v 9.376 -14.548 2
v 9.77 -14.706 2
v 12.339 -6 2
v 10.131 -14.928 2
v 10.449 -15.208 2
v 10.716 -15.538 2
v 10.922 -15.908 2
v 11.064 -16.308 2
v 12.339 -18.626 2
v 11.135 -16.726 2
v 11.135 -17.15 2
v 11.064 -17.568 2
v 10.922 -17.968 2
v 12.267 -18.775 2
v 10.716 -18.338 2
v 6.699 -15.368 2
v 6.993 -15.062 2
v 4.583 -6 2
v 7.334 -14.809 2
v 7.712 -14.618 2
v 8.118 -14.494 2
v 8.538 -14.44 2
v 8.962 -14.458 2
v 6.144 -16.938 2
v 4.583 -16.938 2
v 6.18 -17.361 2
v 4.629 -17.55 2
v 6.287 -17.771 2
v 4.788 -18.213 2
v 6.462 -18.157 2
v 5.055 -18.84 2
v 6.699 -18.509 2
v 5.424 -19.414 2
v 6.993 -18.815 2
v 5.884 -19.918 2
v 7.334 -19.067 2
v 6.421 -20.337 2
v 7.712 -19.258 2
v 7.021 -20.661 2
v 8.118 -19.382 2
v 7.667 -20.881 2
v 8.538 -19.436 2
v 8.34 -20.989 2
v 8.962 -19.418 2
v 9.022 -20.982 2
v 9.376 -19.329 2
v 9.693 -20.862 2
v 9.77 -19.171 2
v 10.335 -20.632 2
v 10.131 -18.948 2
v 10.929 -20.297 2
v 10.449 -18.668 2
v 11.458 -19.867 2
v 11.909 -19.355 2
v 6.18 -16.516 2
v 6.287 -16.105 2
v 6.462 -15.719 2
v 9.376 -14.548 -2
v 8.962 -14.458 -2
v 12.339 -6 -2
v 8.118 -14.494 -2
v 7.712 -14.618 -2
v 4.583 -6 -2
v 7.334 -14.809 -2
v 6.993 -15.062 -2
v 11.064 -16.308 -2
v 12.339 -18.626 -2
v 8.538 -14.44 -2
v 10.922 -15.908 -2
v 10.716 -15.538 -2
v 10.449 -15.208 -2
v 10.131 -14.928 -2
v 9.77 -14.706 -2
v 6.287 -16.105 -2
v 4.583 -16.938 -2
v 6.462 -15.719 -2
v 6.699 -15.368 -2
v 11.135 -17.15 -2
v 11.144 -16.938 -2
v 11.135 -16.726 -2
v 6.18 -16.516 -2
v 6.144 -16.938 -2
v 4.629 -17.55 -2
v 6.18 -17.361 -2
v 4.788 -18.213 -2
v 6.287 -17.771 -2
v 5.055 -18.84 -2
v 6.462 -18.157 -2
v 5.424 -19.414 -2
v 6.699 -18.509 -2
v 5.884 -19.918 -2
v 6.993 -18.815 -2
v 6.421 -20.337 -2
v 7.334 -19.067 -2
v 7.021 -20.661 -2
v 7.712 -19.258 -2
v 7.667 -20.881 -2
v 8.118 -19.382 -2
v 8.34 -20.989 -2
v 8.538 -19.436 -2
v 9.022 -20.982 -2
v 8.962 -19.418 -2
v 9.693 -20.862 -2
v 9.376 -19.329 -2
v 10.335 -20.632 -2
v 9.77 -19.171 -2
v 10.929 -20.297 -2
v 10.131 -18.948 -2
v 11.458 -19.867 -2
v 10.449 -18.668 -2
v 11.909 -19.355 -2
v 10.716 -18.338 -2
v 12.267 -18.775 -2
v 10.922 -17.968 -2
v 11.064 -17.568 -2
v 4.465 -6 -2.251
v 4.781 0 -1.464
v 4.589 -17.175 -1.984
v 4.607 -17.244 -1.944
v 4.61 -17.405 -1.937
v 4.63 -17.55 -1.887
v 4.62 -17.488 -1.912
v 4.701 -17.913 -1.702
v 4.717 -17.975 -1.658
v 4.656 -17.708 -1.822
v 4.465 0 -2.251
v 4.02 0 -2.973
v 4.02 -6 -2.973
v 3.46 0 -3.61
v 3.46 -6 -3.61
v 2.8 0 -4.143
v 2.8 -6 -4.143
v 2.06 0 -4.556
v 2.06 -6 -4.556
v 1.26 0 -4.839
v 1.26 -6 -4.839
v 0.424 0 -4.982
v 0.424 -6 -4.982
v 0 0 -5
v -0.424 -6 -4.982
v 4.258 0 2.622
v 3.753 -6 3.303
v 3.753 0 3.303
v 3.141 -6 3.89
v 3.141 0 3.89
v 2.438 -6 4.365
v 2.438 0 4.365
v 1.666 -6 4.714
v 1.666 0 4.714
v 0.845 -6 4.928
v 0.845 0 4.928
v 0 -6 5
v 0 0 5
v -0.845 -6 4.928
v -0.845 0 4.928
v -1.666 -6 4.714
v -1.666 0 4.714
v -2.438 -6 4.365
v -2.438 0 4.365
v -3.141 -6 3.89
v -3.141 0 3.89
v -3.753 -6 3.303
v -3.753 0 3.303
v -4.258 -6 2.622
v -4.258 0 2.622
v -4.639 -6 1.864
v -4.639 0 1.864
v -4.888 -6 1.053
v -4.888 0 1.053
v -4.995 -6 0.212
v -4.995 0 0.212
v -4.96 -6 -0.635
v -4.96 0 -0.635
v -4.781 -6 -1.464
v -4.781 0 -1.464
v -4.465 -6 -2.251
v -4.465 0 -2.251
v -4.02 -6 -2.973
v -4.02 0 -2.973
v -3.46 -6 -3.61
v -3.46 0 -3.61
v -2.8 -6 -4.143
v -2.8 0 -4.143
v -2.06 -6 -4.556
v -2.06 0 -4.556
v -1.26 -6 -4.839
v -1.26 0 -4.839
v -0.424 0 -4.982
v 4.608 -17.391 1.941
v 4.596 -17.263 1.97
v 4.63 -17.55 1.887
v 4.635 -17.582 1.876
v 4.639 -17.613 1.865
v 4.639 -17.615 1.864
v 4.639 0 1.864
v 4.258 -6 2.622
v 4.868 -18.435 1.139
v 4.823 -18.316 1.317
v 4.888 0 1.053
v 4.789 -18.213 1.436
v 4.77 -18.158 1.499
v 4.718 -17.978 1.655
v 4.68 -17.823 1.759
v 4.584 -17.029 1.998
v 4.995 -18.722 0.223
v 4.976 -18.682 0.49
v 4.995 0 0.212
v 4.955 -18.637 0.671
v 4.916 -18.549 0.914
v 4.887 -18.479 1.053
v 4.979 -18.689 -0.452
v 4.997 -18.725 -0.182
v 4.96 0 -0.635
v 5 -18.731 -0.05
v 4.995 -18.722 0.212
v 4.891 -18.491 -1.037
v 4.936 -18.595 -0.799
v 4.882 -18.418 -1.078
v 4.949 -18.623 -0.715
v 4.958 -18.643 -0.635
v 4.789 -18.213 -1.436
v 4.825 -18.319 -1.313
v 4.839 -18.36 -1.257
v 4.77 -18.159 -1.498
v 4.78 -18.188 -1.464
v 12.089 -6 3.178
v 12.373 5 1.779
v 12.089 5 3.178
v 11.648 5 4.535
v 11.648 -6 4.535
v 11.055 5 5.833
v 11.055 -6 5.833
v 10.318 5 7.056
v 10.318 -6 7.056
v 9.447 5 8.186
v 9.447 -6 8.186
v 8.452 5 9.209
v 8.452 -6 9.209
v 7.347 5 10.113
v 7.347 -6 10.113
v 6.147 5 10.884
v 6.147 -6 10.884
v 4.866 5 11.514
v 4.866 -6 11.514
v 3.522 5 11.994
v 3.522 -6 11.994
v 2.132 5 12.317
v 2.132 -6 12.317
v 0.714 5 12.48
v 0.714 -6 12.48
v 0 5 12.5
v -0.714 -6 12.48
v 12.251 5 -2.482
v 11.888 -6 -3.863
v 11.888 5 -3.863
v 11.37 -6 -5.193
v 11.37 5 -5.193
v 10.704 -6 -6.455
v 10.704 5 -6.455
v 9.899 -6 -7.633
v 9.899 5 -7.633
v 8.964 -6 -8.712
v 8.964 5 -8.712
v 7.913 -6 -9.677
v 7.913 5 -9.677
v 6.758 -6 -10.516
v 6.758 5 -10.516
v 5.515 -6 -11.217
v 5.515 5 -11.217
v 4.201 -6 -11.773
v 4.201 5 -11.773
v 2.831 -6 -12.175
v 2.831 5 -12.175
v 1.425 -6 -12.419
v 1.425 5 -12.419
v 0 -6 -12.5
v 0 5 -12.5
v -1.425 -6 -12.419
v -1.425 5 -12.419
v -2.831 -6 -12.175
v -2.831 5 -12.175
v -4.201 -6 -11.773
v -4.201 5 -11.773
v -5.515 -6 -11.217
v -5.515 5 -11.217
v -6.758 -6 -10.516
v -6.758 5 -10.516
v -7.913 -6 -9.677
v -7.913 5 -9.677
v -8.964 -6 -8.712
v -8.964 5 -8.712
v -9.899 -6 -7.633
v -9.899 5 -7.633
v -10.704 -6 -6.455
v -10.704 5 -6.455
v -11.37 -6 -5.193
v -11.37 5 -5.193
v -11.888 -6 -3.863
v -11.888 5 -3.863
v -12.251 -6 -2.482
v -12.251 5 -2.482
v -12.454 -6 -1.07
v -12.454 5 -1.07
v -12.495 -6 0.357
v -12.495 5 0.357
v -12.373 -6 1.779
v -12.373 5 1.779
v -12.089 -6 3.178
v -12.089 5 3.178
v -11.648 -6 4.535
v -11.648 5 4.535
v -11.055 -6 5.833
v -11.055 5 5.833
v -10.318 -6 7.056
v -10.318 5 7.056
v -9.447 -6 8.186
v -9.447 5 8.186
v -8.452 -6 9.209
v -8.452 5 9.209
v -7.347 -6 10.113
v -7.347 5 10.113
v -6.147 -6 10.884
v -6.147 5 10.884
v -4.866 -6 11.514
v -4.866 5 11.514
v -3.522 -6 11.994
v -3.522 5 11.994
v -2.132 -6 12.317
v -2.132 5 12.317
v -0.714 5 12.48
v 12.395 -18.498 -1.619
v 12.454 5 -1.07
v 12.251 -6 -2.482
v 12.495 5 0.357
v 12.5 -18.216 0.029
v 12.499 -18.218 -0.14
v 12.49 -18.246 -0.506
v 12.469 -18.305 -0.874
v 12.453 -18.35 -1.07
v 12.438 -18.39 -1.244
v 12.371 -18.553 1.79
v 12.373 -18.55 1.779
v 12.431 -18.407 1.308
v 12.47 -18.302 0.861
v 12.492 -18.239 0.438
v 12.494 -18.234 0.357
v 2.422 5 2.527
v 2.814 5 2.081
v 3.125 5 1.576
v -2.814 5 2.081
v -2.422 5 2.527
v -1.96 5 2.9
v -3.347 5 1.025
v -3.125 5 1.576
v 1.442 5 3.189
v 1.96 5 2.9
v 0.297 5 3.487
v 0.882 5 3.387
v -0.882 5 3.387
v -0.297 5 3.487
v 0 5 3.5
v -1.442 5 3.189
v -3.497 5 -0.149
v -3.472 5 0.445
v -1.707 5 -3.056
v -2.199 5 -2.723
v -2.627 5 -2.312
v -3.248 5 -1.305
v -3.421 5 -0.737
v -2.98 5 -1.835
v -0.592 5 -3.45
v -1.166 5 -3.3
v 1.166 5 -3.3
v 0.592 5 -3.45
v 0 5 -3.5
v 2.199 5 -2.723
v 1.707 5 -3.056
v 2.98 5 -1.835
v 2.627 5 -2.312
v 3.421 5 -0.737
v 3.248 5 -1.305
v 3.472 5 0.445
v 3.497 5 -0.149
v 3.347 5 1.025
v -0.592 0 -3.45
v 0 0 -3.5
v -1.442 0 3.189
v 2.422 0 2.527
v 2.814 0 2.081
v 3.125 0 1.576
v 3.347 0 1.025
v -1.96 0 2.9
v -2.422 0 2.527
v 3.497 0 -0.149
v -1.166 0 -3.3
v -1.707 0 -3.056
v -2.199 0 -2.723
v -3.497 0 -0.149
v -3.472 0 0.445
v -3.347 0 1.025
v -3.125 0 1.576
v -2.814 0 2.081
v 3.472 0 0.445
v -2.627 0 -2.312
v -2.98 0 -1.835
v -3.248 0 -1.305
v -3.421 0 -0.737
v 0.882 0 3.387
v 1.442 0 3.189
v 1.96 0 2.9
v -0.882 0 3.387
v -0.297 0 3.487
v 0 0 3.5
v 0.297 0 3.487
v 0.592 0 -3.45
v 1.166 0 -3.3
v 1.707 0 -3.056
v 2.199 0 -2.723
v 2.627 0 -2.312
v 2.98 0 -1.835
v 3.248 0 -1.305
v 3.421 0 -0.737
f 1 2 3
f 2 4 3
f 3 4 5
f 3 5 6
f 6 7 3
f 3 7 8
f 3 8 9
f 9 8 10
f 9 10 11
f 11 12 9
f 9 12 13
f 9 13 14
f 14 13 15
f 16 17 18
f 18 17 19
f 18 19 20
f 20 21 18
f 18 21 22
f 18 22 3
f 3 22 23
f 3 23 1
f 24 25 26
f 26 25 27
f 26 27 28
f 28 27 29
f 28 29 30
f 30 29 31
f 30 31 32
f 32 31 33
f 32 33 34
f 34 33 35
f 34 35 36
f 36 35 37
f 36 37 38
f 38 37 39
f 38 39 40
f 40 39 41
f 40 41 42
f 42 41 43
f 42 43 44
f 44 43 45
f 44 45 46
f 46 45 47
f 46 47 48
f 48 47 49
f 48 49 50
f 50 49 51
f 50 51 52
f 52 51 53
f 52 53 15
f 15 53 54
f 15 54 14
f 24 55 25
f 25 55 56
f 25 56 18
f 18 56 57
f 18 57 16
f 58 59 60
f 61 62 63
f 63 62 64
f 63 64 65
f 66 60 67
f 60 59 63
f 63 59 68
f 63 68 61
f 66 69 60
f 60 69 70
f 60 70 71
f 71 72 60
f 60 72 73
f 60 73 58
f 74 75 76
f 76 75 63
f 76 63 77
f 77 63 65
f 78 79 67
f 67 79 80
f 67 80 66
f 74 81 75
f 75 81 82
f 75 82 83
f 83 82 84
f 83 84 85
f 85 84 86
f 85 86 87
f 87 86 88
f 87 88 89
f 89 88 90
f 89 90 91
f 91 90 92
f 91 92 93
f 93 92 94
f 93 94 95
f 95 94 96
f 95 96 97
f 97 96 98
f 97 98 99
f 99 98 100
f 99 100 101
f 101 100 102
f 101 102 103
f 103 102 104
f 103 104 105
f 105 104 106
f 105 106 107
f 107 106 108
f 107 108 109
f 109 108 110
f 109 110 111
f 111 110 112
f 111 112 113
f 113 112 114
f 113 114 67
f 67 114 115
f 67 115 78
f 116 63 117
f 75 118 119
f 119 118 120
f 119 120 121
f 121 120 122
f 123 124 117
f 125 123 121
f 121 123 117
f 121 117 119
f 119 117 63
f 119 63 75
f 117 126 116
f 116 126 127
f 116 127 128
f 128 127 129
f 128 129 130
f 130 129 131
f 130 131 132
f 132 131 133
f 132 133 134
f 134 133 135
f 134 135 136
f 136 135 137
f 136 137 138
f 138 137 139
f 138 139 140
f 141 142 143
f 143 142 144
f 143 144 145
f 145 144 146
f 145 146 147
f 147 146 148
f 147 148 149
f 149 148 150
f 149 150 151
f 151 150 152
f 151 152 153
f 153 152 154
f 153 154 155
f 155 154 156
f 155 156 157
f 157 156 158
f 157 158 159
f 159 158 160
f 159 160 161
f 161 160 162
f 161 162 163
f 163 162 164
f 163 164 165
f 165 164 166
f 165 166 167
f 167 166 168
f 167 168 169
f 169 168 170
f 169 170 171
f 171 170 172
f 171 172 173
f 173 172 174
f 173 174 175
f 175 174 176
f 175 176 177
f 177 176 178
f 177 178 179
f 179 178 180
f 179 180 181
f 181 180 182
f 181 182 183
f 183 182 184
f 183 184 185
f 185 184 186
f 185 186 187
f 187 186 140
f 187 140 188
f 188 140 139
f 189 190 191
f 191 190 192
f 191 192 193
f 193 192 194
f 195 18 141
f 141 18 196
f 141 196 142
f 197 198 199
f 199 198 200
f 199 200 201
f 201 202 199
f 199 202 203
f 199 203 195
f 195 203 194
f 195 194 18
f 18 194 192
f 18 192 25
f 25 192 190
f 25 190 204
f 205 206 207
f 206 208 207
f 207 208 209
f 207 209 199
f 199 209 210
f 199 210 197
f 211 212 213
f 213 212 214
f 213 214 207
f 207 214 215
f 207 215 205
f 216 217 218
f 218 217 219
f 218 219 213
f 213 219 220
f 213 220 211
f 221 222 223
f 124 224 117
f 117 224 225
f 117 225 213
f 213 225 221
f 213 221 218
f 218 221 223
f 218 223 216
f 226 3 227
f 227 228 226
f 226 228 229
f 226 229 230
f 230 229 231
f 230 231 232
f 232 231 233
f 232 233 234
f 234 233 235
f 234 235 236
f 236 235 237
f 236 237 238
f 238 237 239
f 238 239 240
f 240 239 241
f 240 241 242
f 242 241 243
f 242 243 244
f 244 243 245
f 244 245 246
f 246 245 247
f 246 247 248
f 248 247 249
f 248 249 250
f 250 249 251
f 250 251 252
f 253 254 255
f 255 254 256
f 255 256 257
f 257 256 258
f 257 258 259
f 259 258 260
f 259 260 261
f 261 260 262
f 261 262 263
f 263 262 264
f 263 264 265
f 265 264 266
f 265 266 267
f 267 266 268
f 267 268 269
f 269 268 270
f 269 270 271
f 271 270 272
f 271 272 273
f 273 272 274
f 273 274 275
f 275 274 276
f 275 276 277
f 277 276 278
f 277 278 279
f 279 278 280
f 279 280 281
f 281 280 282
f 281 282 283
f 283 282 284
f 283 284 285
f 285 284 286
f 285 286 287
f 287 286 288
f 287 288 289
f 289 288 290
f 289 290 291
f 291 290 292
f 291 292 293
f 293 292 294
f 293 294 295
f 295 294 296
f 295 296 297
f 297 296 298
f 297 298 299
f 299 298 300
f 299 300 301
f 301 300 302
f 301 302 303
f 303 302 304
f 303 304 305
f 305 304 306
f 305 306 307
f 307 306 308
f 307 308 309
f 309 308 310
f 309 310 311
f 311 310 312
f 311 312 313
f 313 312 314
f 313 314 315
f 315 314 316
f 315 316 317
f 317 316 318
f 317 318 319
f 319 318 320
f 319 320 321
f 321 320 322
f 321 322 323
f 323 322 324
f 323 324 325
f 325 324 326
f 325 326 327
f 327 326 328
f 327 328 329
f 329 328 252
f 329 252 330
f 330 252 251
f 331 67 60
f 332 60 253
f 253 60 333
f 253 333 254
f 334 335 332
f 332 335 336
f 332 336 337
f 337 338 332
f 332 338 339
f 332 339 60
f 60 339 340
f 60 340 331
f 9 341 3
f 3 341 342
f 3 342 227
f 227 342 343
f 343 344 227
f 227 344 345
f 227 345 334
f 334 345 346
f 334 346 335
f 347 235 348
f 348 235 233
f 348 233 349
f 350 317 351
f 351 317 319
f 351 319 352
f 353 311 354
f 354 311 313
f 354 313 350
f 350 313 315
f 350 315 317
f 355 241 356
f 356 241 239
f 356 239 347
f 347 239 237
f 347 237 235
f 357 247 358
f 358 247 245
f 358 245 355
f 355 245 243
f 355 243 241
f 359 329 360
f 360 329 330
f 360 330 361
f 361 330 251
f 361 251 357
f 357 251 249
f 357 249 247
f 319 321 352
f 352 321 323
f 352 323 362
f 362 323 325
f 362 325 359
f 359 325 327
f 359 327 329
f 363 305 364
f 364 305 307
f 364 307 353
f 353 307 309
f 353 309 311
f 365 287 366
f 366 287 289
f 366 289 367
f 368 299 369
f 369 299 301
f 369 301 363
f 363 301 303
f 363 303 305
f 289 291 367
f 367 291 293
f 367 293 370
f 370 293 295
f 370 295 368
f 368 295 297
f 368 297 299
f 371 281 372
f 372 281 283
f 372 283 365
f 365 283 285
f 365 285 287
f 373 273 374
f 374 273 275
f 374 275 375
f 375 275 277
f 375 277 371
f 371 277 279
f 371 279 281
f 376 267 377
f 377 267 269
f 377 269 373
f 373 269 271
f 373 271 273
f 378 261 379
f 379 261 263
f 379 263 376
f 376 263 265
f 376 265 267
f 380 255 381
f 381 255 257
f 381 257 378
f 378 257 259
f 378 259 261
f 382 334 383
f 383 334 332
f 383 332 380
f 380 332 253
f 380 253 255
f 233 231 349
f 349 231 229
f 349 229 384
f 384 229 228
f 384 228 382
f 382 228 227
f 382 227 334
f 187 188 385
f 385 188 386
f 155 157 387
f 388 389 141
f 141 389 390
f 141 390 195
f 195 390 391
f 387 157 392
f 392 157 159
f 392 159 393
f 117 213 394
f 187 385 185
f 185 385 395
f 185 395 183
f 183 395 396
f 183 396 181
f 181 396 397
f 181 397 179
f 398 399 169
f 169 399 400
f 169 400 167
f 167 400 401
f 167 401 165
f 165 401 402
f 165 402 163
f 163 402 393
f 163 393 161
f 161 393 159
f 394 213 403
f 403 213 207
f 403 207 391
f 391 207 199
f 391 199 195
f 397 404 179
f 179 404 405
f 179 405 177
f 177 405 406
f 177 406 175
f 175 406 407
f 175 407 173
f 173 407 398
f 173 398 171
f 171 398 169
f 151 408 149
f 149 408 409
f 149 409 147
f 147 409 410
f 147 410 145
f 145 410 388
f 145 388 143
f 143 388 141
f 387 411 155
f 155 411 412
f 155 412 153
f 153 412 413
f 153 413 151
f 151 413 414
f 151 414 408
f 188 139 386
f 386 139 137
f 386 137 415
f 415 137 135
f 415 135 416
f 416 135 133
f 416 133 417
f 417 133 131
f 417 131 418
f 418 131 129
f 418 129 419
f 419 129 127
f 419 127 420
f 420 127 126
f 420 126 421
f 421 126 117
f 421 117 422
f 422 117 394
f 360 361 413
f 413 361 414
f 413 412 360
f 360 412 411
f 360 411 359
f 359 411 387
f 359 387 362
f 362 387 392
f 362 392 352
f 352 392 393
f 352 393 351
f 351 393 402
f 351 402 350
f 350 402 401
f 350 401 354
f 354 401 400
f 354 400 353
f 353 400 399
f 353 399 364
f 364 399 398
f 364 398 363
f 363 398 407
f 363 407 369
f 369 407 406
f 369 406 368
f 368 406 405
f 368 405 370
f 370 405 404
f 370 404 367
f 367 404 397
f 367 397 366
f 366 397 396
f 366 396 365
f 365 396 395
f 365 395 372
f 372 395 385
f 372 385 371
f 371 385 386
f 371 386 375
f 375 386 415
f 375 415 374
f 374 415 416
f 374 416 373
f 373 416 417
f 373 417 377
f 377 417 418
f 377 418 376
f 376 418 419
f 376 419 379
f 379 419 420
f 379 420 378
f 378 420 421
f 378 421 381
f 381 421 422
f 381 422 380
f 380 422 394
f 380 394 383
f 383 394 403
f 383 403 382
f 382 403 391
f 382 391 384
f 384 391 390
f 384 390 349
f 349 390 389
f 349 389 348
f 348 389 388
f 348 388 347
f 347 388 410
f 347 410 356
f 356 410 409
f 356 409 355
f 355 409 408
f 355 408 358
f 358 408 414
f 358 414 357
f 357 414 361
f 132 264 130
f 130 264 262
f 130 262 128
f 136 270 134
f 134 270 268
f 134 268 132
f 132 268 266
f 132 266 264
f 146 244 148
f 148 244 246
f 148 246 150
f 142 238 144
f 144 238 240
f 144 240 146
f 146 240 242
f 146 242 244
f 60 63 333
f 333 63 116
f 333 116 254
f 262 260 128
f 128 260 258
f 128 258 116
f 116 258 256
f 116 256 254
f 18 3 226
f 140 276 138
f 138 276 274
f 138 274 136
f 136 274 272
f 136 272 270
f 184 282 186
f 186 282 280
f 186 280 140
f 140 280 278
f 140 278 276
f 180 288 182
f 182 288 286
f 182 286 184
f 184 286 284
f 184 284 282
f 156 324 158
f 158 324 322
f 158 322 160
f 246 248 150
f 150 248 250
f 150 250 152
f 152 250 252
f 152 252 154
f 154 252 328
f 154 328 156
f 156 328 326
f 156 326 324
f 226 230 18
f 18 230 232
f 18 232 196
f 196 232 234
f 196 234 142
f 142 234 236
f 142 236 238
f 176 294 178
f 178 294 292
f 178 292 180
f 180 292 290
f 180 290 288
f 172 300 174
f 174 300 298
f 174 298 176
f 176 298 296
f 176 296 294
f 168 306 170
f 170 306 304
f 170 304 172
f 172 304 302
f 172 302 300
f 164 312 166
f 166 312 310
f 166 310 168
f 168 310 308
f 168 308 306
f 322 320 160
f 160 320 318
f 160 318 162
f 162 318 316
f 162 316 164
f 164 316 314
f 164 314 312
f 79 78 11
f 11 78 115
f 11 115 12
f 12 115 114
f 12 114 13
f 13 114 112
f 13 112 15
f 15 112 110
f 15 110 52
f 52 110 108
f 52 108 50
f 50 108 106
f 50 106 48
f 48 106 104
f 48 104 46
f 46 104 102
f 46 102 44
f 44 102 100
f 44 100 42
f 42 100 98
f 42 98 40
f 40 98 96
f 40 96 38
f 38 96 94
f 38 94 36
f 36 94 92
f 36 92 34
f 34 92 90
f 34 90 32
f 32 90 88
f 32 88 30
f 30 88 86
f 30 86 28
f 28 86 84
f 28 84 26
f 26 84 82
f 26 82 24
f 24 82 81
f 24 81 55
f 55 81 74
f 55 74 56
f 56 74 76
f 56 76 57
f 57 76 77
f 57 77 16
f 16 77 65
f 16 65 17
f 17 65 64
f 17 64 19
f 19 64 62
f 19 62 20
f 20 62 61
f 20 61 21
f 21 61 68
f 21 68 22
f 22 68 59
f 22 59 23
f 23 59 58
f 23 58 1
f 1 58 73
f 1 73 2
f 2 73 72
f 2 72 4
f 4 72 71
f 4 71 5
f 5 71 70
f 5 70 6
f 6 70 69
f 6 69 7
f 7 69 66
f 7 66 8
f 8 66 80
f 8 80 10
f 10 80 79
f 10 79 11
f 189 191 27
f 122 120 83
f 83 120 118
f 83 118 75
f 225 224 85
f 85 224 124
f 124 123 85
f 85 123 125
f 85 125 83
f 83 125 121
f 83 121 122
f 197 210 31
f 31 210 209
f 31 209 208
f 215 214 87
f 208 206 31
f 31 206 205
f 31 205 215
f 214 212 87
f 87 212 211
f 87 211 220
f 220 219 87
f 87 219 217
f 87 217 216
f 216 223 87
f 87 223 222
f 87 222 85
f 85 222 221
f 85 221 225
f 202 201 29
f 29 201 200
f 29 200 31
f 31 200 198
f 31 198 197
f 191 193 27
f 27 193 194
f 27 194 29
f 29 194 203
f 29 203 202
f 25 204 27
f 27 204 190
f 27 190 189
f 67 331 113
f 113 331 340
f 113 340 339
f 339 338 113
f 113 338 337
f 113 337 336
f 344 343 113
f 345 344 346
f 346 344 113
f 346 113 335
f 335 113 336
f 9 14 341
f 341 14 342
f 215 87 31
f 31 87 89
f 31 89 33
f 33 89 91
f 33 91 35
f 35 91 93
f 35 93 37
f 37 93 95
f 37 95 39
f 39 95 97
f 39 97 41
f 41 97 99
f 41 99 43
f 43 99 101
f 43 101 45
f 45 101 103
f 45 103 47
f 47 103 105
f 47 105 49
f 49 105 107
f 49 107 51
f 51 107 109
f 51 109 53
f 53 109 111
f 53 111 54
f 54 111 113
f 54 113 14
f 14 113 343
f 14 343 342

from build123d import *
from build123d.topology import SkipClean

# Parameters (mm, degrees)
SKETCH1_R                      = 12.5
SKETCH1_R_2                    = 3.5
BOSS_EXTRUDE1_DEPTH            = 5
BOSS_EXTRUDE2_START            = 6
SKETCH2_R                      = 12.5
SKETCH2_R_2                    = 5
BOSS_EXTRUDE2_DEPTH            = 6
SKETCH3_W                      = 10.120170627
SKETCH3_H                      = 4
BOSS_EXTRUDE3_DEPTH            = 15
SKETCH2_2_OUTSIDE_W            = 37.094
SKETCH2_2_OUTSIDE_H            = 35.914
SKETCH2_2_OUTSIDE_R            = 12.5
SKETCH2_2_OUTSIDE_R_2          = 5
CUT_EXTRUDE1_DEPTH             = 21
CUT_EXTRUDE2_REACH             = 29.45
SKETCH4_R                      = 2.5
CUT_EXTRUDE2_DIRECTION_2_REACH = 29.45


with BuildPart() as part:
    # Sketch1 → Boss-Extrude1 (new body)
    with BuildSketch(Plane(origin=(0, 0, 0), x_dir=(1, 0, 0), z_dir=(0, 1, 0))):
        with Locations(Location((0, 0, 0), (0, 0, 270))):
            Circle(SKETCH1_R)
        with Locations(Location((0, 0, 0), (0, 0, 270))):
            Circle(SKETCH1_R_2, mode=Mode.SUBTRACT)
    extrude(amount=BOSS_EXTRUDE1_DEPTH)

    # Sketch2 → Boss-Extrude2 (add)
    with BuildSketch(Plane.XZ.offset(BOSS_EXTRUDE2_START)):
        with Locations(Location((0, 0, 0), (0, 0, 270))):
            Circle(SKETCH2_R)
        with Locations(Location((0, 0, 0), (0, 0, 270))):
            Circle(SKETCH2_R_2, mode=Mode.SUBTRACT)
    extrude(amount=-BOSS_EXTRUDE2_DEPTH)

    # Sketch3 → Boss-Extrude3 (add)
    with BuildSketch(Plane.XZ.offset(6)):
        with Locations((8.62005684, 0)):
            Rectangle(SKETCH3_W, SKETCH3_H)
    extrude(amount=BOSS_EXTRUDE3_DEPTH)

    # Sketch2<2> outside → Cut-Extrude1 (cut)
    # profile 1 of 2: a face of its own
    with SkipClean():  # the faces are left unmerged after this step: merging them gives an invalid solid
        with BuildSketch(Plane.XZ):
            with Locations((0.59, 0)):
                Rectangle(SKETCH2_2_OUTSIDE_W, SKETCH2_2_OUTSIDE_H)
            with Locations(Location((0, 0, 0), (0, 0, 350.793103779))):
                Circle(SKETCH2_2_OUTSIDE_R, mode=Mode.SUBTRACT)
        # profile 2 of 2: a face of its own
        with BuildSketch(Plane.XZ):
            with Locations(Location((0, 0, 0), (0, 0, 23.578178478))):
                Circle(SKETCH2_2_OUTSIDE_R_2)
        extrude(amount=CUT_EXTRUDE1_DEPTH, mode=Mode.SUBTRACT)
    add(part.part.scale(1), mode=Mode.REPLACE)  # the faces are merged on a copy

    # Cut-Extrude2: up to this face of the body (flat: up to its plane)
    cut_extrude2_end = Plane(part.part.faces().sort_by_distance((8.460769187, -13.5, 2))[0])
    # Sketch4 → Cut-Extrude2 (cut, up to the picked face)
    with BuildSketch(Plane(origin=(0, 0, 0), x_dir=(-1, 0, 0), z_dir=(0, 0, -1)), mode=Mode.PRIVATE) as cut_extrude2_sk1:
        with Locations((-8.644378832, -16.938196863)):
            Circle(SKETCH4_R)
    cut_extrude2_tool1 = split(extrude(cut_extrude2_sk1.sketch, amount=-CUT_EXTRUDE2_REACH, mode=Mode.PRIVATE), bisect_by=cut_extrude2_end, keep=Keep.BOTH, mode=Mode.PRIVATE)
    # Sketch4 → Cut-Extrude2 (cut, up to the picked face)
    with BuildSketch(Plane(origin=(0, 0, 0), x_dir=(-1, 0, 0), z_dir=(0, 0, -1)), mode=Mode.PRIVATE) as cut_extrude2_sk2:
        with BuildLine():
            ThreePointArc((-8.644378832, -21), (-11.516507373, -19.810325405), (-12.706181968, -16.938196863))
            Line((-12.706181968, -16.938196863), (-12.706181968, -21))
            Line((-12.706181968, -21), (-8.644378832, -21))
        make_face()
    cut_extrude2_tool2 = split(extrude(cut_extrude2_sk2.sketch, amount=-CUT_EXTRUDE2_REACH, mode=Mode.PRIVATE), bisect_by=cut_extrude2_end, keep=Keep.BOTH, mode=Mode.PRIVATE)
    # Sketch4 → Cut-Extrude2 (cut, up to the picked face)
    with BuildSketch(Plane(origin=(0, 0, 0), x_dir=(-1, 0, 0), z_dir=(0, 0, -1)), mode=Mode.PRIVATE) as cut_extrude2_sk3:
        with BuildLine():
            Line((-4.582575695, -21), (-4.582575695, -16.938196863))
            ThreePointArc((-4.582575695, -16.938196863), (-5.77225029, -19.810325405), (-8.644378832, -21))
            Line((-8.644378832, -21), (-4.582575695, -21))
        make_face()
    cut_extrude2_tool3 = split(extrude(cut_extrude2_sk3.sketch, amount=-CUT_EXTRUDE2_REACH, mode=Mode.PRIVATE), bisect_by=cut_extrude2_end, keep=Keep.BOTH, mode=Mode.PRIVATE)
    add(cut_extrude2_tool1.solids().sort_by(Axis((8.644379, -16.938197, 0), (0, 0, 1)))[0], mode=Mode.SUBTRACT)
    add(cut_extrude2_tool2.solids().sort_by(Axis((11.798905, -20.092723, 0), (0, 0, 1)))[0], mode=Mode.SUBTRACT)
    add(cut_extrude2_tool3.solids().sort_by(Axis((5.489852, -20.092723, 0), (0, 0, 1)))[0], mode=Mode.SUBTRACT)

    # Cut-Extrude2 direction 2: up to this face of the body (flat: up to its plane)
    cut_extrude2_direction_2_end = Plane(part.part.faces().sort_by_distance((8.460769187, -13.5, -2))[0])
    # Sketch4 → Cut-Extrude2 direction 2 (cut, up to the picked face)
    with BuildSketch(Plane(origin=(0, 0, 0), x_dir=(-1, 0, 0), z_dir=(0, 0, -1)), mode=Mode.PRIVATE) as cut_extrude2_direction_2_sk1:
        with Locations((-8.644378832, -16.938196863)):
            Circle(SKETCH4_R)
    cut_extrude2_direction_2_tool1 = split(extrude(cut_extrude2_direction_2_sk1.sketch, amount=CUT_EXTRUDE2_DIRECTION_2_REACH, mode=Mode.PRIVATE), bisect_by=cut_extrude2_direction_2_end, keep=Keep.BOTH, mode=Mode.PRIVATE)
    # Sketch4 → Cut-Extrude2 direction 2 (cut, up to the picked face)
    with BuildSketch(Plane(origin=(0, 0, 0), x_dir=(-1, 0, 0), z_dir=(0, 0, -1)), mode=Mode.PRIVATE) as cut_extrude2_direction_2_sk2:
        with BuildLine():
            ThreePointArc((-8.644378832, -21), (-11.516507373, -19.810325405), (-12.706181968, -16.938196863))
            Line((-12.706181968, -16.938196863), (-12.706181968, -21))
            Line((-12.706181968, -21), (-8.644378832, -21))
        make_face()
    cut_extrude2_direction_2_tool2 = split(extrude(cut_extrude2_direction_2_sk2.sketch, amount=CUT_EXTRUDE2_DIRECTION_2_REACH, mode=Mode.PRIVATE), bisect_by=cut_extrude2_direction_2_end, keep=Keep.BOTH, mode=Mode.PRIVATE)
    # Sketch4 → Cut-Extrude2 direction 2 (cut, up to the picked face)
    with BuildSketch(Plane(origin=(0, 0, 0), x_dir=(-1, 0, 0), z_dir=(0, 0, -1)), mode=Mode.PRIVATE) as cut_extrude2_direction_2_sk3:
        with BuildLine():
            Line((-4.582575695, -21), (-4.582575695, -16.938196863))
            ThreePointArc((-4.582575695, -16.938196863), (-5.77225029, -19.810325405), (-8.644378832, -21))
            Line((-8.644378832, -21), (-4.582575695, -21))
        make_face()
    cut_extrude2_direction_2_tool3 = split(extrude(cut_extrude2_direction_2_sk3.sketch, amount=CUT_EXTRUDE2_DIRECTION_2_REACH, mode=Mode.PRIVATE), bisect_by=cut_extrude2_direction_2_end, keep=Keep.BOTH, mode=Mode.PRIVATE)
    add(cut_extrude2_direction_2_tool1.solids().sort_by(Axis((8.644379, -16.938197, 0), (0, 0, -1)))[0], mode=Mode.SUBTRACT)
    add(cut_extrude2_direction_2_tool2.solids().sort_by(Axis((11.798905, -20.092723, 0), (0, 0, -1)))[0], mode=Mode.SUBTRACT)
    add(cut_extrude2_direction_2_tool3.solids().sort_by(Axis((5.489852, -20.092723, 0), (0, 0, -1)))[0], mode=Mode.SUBTRACT)


solid = part.part
